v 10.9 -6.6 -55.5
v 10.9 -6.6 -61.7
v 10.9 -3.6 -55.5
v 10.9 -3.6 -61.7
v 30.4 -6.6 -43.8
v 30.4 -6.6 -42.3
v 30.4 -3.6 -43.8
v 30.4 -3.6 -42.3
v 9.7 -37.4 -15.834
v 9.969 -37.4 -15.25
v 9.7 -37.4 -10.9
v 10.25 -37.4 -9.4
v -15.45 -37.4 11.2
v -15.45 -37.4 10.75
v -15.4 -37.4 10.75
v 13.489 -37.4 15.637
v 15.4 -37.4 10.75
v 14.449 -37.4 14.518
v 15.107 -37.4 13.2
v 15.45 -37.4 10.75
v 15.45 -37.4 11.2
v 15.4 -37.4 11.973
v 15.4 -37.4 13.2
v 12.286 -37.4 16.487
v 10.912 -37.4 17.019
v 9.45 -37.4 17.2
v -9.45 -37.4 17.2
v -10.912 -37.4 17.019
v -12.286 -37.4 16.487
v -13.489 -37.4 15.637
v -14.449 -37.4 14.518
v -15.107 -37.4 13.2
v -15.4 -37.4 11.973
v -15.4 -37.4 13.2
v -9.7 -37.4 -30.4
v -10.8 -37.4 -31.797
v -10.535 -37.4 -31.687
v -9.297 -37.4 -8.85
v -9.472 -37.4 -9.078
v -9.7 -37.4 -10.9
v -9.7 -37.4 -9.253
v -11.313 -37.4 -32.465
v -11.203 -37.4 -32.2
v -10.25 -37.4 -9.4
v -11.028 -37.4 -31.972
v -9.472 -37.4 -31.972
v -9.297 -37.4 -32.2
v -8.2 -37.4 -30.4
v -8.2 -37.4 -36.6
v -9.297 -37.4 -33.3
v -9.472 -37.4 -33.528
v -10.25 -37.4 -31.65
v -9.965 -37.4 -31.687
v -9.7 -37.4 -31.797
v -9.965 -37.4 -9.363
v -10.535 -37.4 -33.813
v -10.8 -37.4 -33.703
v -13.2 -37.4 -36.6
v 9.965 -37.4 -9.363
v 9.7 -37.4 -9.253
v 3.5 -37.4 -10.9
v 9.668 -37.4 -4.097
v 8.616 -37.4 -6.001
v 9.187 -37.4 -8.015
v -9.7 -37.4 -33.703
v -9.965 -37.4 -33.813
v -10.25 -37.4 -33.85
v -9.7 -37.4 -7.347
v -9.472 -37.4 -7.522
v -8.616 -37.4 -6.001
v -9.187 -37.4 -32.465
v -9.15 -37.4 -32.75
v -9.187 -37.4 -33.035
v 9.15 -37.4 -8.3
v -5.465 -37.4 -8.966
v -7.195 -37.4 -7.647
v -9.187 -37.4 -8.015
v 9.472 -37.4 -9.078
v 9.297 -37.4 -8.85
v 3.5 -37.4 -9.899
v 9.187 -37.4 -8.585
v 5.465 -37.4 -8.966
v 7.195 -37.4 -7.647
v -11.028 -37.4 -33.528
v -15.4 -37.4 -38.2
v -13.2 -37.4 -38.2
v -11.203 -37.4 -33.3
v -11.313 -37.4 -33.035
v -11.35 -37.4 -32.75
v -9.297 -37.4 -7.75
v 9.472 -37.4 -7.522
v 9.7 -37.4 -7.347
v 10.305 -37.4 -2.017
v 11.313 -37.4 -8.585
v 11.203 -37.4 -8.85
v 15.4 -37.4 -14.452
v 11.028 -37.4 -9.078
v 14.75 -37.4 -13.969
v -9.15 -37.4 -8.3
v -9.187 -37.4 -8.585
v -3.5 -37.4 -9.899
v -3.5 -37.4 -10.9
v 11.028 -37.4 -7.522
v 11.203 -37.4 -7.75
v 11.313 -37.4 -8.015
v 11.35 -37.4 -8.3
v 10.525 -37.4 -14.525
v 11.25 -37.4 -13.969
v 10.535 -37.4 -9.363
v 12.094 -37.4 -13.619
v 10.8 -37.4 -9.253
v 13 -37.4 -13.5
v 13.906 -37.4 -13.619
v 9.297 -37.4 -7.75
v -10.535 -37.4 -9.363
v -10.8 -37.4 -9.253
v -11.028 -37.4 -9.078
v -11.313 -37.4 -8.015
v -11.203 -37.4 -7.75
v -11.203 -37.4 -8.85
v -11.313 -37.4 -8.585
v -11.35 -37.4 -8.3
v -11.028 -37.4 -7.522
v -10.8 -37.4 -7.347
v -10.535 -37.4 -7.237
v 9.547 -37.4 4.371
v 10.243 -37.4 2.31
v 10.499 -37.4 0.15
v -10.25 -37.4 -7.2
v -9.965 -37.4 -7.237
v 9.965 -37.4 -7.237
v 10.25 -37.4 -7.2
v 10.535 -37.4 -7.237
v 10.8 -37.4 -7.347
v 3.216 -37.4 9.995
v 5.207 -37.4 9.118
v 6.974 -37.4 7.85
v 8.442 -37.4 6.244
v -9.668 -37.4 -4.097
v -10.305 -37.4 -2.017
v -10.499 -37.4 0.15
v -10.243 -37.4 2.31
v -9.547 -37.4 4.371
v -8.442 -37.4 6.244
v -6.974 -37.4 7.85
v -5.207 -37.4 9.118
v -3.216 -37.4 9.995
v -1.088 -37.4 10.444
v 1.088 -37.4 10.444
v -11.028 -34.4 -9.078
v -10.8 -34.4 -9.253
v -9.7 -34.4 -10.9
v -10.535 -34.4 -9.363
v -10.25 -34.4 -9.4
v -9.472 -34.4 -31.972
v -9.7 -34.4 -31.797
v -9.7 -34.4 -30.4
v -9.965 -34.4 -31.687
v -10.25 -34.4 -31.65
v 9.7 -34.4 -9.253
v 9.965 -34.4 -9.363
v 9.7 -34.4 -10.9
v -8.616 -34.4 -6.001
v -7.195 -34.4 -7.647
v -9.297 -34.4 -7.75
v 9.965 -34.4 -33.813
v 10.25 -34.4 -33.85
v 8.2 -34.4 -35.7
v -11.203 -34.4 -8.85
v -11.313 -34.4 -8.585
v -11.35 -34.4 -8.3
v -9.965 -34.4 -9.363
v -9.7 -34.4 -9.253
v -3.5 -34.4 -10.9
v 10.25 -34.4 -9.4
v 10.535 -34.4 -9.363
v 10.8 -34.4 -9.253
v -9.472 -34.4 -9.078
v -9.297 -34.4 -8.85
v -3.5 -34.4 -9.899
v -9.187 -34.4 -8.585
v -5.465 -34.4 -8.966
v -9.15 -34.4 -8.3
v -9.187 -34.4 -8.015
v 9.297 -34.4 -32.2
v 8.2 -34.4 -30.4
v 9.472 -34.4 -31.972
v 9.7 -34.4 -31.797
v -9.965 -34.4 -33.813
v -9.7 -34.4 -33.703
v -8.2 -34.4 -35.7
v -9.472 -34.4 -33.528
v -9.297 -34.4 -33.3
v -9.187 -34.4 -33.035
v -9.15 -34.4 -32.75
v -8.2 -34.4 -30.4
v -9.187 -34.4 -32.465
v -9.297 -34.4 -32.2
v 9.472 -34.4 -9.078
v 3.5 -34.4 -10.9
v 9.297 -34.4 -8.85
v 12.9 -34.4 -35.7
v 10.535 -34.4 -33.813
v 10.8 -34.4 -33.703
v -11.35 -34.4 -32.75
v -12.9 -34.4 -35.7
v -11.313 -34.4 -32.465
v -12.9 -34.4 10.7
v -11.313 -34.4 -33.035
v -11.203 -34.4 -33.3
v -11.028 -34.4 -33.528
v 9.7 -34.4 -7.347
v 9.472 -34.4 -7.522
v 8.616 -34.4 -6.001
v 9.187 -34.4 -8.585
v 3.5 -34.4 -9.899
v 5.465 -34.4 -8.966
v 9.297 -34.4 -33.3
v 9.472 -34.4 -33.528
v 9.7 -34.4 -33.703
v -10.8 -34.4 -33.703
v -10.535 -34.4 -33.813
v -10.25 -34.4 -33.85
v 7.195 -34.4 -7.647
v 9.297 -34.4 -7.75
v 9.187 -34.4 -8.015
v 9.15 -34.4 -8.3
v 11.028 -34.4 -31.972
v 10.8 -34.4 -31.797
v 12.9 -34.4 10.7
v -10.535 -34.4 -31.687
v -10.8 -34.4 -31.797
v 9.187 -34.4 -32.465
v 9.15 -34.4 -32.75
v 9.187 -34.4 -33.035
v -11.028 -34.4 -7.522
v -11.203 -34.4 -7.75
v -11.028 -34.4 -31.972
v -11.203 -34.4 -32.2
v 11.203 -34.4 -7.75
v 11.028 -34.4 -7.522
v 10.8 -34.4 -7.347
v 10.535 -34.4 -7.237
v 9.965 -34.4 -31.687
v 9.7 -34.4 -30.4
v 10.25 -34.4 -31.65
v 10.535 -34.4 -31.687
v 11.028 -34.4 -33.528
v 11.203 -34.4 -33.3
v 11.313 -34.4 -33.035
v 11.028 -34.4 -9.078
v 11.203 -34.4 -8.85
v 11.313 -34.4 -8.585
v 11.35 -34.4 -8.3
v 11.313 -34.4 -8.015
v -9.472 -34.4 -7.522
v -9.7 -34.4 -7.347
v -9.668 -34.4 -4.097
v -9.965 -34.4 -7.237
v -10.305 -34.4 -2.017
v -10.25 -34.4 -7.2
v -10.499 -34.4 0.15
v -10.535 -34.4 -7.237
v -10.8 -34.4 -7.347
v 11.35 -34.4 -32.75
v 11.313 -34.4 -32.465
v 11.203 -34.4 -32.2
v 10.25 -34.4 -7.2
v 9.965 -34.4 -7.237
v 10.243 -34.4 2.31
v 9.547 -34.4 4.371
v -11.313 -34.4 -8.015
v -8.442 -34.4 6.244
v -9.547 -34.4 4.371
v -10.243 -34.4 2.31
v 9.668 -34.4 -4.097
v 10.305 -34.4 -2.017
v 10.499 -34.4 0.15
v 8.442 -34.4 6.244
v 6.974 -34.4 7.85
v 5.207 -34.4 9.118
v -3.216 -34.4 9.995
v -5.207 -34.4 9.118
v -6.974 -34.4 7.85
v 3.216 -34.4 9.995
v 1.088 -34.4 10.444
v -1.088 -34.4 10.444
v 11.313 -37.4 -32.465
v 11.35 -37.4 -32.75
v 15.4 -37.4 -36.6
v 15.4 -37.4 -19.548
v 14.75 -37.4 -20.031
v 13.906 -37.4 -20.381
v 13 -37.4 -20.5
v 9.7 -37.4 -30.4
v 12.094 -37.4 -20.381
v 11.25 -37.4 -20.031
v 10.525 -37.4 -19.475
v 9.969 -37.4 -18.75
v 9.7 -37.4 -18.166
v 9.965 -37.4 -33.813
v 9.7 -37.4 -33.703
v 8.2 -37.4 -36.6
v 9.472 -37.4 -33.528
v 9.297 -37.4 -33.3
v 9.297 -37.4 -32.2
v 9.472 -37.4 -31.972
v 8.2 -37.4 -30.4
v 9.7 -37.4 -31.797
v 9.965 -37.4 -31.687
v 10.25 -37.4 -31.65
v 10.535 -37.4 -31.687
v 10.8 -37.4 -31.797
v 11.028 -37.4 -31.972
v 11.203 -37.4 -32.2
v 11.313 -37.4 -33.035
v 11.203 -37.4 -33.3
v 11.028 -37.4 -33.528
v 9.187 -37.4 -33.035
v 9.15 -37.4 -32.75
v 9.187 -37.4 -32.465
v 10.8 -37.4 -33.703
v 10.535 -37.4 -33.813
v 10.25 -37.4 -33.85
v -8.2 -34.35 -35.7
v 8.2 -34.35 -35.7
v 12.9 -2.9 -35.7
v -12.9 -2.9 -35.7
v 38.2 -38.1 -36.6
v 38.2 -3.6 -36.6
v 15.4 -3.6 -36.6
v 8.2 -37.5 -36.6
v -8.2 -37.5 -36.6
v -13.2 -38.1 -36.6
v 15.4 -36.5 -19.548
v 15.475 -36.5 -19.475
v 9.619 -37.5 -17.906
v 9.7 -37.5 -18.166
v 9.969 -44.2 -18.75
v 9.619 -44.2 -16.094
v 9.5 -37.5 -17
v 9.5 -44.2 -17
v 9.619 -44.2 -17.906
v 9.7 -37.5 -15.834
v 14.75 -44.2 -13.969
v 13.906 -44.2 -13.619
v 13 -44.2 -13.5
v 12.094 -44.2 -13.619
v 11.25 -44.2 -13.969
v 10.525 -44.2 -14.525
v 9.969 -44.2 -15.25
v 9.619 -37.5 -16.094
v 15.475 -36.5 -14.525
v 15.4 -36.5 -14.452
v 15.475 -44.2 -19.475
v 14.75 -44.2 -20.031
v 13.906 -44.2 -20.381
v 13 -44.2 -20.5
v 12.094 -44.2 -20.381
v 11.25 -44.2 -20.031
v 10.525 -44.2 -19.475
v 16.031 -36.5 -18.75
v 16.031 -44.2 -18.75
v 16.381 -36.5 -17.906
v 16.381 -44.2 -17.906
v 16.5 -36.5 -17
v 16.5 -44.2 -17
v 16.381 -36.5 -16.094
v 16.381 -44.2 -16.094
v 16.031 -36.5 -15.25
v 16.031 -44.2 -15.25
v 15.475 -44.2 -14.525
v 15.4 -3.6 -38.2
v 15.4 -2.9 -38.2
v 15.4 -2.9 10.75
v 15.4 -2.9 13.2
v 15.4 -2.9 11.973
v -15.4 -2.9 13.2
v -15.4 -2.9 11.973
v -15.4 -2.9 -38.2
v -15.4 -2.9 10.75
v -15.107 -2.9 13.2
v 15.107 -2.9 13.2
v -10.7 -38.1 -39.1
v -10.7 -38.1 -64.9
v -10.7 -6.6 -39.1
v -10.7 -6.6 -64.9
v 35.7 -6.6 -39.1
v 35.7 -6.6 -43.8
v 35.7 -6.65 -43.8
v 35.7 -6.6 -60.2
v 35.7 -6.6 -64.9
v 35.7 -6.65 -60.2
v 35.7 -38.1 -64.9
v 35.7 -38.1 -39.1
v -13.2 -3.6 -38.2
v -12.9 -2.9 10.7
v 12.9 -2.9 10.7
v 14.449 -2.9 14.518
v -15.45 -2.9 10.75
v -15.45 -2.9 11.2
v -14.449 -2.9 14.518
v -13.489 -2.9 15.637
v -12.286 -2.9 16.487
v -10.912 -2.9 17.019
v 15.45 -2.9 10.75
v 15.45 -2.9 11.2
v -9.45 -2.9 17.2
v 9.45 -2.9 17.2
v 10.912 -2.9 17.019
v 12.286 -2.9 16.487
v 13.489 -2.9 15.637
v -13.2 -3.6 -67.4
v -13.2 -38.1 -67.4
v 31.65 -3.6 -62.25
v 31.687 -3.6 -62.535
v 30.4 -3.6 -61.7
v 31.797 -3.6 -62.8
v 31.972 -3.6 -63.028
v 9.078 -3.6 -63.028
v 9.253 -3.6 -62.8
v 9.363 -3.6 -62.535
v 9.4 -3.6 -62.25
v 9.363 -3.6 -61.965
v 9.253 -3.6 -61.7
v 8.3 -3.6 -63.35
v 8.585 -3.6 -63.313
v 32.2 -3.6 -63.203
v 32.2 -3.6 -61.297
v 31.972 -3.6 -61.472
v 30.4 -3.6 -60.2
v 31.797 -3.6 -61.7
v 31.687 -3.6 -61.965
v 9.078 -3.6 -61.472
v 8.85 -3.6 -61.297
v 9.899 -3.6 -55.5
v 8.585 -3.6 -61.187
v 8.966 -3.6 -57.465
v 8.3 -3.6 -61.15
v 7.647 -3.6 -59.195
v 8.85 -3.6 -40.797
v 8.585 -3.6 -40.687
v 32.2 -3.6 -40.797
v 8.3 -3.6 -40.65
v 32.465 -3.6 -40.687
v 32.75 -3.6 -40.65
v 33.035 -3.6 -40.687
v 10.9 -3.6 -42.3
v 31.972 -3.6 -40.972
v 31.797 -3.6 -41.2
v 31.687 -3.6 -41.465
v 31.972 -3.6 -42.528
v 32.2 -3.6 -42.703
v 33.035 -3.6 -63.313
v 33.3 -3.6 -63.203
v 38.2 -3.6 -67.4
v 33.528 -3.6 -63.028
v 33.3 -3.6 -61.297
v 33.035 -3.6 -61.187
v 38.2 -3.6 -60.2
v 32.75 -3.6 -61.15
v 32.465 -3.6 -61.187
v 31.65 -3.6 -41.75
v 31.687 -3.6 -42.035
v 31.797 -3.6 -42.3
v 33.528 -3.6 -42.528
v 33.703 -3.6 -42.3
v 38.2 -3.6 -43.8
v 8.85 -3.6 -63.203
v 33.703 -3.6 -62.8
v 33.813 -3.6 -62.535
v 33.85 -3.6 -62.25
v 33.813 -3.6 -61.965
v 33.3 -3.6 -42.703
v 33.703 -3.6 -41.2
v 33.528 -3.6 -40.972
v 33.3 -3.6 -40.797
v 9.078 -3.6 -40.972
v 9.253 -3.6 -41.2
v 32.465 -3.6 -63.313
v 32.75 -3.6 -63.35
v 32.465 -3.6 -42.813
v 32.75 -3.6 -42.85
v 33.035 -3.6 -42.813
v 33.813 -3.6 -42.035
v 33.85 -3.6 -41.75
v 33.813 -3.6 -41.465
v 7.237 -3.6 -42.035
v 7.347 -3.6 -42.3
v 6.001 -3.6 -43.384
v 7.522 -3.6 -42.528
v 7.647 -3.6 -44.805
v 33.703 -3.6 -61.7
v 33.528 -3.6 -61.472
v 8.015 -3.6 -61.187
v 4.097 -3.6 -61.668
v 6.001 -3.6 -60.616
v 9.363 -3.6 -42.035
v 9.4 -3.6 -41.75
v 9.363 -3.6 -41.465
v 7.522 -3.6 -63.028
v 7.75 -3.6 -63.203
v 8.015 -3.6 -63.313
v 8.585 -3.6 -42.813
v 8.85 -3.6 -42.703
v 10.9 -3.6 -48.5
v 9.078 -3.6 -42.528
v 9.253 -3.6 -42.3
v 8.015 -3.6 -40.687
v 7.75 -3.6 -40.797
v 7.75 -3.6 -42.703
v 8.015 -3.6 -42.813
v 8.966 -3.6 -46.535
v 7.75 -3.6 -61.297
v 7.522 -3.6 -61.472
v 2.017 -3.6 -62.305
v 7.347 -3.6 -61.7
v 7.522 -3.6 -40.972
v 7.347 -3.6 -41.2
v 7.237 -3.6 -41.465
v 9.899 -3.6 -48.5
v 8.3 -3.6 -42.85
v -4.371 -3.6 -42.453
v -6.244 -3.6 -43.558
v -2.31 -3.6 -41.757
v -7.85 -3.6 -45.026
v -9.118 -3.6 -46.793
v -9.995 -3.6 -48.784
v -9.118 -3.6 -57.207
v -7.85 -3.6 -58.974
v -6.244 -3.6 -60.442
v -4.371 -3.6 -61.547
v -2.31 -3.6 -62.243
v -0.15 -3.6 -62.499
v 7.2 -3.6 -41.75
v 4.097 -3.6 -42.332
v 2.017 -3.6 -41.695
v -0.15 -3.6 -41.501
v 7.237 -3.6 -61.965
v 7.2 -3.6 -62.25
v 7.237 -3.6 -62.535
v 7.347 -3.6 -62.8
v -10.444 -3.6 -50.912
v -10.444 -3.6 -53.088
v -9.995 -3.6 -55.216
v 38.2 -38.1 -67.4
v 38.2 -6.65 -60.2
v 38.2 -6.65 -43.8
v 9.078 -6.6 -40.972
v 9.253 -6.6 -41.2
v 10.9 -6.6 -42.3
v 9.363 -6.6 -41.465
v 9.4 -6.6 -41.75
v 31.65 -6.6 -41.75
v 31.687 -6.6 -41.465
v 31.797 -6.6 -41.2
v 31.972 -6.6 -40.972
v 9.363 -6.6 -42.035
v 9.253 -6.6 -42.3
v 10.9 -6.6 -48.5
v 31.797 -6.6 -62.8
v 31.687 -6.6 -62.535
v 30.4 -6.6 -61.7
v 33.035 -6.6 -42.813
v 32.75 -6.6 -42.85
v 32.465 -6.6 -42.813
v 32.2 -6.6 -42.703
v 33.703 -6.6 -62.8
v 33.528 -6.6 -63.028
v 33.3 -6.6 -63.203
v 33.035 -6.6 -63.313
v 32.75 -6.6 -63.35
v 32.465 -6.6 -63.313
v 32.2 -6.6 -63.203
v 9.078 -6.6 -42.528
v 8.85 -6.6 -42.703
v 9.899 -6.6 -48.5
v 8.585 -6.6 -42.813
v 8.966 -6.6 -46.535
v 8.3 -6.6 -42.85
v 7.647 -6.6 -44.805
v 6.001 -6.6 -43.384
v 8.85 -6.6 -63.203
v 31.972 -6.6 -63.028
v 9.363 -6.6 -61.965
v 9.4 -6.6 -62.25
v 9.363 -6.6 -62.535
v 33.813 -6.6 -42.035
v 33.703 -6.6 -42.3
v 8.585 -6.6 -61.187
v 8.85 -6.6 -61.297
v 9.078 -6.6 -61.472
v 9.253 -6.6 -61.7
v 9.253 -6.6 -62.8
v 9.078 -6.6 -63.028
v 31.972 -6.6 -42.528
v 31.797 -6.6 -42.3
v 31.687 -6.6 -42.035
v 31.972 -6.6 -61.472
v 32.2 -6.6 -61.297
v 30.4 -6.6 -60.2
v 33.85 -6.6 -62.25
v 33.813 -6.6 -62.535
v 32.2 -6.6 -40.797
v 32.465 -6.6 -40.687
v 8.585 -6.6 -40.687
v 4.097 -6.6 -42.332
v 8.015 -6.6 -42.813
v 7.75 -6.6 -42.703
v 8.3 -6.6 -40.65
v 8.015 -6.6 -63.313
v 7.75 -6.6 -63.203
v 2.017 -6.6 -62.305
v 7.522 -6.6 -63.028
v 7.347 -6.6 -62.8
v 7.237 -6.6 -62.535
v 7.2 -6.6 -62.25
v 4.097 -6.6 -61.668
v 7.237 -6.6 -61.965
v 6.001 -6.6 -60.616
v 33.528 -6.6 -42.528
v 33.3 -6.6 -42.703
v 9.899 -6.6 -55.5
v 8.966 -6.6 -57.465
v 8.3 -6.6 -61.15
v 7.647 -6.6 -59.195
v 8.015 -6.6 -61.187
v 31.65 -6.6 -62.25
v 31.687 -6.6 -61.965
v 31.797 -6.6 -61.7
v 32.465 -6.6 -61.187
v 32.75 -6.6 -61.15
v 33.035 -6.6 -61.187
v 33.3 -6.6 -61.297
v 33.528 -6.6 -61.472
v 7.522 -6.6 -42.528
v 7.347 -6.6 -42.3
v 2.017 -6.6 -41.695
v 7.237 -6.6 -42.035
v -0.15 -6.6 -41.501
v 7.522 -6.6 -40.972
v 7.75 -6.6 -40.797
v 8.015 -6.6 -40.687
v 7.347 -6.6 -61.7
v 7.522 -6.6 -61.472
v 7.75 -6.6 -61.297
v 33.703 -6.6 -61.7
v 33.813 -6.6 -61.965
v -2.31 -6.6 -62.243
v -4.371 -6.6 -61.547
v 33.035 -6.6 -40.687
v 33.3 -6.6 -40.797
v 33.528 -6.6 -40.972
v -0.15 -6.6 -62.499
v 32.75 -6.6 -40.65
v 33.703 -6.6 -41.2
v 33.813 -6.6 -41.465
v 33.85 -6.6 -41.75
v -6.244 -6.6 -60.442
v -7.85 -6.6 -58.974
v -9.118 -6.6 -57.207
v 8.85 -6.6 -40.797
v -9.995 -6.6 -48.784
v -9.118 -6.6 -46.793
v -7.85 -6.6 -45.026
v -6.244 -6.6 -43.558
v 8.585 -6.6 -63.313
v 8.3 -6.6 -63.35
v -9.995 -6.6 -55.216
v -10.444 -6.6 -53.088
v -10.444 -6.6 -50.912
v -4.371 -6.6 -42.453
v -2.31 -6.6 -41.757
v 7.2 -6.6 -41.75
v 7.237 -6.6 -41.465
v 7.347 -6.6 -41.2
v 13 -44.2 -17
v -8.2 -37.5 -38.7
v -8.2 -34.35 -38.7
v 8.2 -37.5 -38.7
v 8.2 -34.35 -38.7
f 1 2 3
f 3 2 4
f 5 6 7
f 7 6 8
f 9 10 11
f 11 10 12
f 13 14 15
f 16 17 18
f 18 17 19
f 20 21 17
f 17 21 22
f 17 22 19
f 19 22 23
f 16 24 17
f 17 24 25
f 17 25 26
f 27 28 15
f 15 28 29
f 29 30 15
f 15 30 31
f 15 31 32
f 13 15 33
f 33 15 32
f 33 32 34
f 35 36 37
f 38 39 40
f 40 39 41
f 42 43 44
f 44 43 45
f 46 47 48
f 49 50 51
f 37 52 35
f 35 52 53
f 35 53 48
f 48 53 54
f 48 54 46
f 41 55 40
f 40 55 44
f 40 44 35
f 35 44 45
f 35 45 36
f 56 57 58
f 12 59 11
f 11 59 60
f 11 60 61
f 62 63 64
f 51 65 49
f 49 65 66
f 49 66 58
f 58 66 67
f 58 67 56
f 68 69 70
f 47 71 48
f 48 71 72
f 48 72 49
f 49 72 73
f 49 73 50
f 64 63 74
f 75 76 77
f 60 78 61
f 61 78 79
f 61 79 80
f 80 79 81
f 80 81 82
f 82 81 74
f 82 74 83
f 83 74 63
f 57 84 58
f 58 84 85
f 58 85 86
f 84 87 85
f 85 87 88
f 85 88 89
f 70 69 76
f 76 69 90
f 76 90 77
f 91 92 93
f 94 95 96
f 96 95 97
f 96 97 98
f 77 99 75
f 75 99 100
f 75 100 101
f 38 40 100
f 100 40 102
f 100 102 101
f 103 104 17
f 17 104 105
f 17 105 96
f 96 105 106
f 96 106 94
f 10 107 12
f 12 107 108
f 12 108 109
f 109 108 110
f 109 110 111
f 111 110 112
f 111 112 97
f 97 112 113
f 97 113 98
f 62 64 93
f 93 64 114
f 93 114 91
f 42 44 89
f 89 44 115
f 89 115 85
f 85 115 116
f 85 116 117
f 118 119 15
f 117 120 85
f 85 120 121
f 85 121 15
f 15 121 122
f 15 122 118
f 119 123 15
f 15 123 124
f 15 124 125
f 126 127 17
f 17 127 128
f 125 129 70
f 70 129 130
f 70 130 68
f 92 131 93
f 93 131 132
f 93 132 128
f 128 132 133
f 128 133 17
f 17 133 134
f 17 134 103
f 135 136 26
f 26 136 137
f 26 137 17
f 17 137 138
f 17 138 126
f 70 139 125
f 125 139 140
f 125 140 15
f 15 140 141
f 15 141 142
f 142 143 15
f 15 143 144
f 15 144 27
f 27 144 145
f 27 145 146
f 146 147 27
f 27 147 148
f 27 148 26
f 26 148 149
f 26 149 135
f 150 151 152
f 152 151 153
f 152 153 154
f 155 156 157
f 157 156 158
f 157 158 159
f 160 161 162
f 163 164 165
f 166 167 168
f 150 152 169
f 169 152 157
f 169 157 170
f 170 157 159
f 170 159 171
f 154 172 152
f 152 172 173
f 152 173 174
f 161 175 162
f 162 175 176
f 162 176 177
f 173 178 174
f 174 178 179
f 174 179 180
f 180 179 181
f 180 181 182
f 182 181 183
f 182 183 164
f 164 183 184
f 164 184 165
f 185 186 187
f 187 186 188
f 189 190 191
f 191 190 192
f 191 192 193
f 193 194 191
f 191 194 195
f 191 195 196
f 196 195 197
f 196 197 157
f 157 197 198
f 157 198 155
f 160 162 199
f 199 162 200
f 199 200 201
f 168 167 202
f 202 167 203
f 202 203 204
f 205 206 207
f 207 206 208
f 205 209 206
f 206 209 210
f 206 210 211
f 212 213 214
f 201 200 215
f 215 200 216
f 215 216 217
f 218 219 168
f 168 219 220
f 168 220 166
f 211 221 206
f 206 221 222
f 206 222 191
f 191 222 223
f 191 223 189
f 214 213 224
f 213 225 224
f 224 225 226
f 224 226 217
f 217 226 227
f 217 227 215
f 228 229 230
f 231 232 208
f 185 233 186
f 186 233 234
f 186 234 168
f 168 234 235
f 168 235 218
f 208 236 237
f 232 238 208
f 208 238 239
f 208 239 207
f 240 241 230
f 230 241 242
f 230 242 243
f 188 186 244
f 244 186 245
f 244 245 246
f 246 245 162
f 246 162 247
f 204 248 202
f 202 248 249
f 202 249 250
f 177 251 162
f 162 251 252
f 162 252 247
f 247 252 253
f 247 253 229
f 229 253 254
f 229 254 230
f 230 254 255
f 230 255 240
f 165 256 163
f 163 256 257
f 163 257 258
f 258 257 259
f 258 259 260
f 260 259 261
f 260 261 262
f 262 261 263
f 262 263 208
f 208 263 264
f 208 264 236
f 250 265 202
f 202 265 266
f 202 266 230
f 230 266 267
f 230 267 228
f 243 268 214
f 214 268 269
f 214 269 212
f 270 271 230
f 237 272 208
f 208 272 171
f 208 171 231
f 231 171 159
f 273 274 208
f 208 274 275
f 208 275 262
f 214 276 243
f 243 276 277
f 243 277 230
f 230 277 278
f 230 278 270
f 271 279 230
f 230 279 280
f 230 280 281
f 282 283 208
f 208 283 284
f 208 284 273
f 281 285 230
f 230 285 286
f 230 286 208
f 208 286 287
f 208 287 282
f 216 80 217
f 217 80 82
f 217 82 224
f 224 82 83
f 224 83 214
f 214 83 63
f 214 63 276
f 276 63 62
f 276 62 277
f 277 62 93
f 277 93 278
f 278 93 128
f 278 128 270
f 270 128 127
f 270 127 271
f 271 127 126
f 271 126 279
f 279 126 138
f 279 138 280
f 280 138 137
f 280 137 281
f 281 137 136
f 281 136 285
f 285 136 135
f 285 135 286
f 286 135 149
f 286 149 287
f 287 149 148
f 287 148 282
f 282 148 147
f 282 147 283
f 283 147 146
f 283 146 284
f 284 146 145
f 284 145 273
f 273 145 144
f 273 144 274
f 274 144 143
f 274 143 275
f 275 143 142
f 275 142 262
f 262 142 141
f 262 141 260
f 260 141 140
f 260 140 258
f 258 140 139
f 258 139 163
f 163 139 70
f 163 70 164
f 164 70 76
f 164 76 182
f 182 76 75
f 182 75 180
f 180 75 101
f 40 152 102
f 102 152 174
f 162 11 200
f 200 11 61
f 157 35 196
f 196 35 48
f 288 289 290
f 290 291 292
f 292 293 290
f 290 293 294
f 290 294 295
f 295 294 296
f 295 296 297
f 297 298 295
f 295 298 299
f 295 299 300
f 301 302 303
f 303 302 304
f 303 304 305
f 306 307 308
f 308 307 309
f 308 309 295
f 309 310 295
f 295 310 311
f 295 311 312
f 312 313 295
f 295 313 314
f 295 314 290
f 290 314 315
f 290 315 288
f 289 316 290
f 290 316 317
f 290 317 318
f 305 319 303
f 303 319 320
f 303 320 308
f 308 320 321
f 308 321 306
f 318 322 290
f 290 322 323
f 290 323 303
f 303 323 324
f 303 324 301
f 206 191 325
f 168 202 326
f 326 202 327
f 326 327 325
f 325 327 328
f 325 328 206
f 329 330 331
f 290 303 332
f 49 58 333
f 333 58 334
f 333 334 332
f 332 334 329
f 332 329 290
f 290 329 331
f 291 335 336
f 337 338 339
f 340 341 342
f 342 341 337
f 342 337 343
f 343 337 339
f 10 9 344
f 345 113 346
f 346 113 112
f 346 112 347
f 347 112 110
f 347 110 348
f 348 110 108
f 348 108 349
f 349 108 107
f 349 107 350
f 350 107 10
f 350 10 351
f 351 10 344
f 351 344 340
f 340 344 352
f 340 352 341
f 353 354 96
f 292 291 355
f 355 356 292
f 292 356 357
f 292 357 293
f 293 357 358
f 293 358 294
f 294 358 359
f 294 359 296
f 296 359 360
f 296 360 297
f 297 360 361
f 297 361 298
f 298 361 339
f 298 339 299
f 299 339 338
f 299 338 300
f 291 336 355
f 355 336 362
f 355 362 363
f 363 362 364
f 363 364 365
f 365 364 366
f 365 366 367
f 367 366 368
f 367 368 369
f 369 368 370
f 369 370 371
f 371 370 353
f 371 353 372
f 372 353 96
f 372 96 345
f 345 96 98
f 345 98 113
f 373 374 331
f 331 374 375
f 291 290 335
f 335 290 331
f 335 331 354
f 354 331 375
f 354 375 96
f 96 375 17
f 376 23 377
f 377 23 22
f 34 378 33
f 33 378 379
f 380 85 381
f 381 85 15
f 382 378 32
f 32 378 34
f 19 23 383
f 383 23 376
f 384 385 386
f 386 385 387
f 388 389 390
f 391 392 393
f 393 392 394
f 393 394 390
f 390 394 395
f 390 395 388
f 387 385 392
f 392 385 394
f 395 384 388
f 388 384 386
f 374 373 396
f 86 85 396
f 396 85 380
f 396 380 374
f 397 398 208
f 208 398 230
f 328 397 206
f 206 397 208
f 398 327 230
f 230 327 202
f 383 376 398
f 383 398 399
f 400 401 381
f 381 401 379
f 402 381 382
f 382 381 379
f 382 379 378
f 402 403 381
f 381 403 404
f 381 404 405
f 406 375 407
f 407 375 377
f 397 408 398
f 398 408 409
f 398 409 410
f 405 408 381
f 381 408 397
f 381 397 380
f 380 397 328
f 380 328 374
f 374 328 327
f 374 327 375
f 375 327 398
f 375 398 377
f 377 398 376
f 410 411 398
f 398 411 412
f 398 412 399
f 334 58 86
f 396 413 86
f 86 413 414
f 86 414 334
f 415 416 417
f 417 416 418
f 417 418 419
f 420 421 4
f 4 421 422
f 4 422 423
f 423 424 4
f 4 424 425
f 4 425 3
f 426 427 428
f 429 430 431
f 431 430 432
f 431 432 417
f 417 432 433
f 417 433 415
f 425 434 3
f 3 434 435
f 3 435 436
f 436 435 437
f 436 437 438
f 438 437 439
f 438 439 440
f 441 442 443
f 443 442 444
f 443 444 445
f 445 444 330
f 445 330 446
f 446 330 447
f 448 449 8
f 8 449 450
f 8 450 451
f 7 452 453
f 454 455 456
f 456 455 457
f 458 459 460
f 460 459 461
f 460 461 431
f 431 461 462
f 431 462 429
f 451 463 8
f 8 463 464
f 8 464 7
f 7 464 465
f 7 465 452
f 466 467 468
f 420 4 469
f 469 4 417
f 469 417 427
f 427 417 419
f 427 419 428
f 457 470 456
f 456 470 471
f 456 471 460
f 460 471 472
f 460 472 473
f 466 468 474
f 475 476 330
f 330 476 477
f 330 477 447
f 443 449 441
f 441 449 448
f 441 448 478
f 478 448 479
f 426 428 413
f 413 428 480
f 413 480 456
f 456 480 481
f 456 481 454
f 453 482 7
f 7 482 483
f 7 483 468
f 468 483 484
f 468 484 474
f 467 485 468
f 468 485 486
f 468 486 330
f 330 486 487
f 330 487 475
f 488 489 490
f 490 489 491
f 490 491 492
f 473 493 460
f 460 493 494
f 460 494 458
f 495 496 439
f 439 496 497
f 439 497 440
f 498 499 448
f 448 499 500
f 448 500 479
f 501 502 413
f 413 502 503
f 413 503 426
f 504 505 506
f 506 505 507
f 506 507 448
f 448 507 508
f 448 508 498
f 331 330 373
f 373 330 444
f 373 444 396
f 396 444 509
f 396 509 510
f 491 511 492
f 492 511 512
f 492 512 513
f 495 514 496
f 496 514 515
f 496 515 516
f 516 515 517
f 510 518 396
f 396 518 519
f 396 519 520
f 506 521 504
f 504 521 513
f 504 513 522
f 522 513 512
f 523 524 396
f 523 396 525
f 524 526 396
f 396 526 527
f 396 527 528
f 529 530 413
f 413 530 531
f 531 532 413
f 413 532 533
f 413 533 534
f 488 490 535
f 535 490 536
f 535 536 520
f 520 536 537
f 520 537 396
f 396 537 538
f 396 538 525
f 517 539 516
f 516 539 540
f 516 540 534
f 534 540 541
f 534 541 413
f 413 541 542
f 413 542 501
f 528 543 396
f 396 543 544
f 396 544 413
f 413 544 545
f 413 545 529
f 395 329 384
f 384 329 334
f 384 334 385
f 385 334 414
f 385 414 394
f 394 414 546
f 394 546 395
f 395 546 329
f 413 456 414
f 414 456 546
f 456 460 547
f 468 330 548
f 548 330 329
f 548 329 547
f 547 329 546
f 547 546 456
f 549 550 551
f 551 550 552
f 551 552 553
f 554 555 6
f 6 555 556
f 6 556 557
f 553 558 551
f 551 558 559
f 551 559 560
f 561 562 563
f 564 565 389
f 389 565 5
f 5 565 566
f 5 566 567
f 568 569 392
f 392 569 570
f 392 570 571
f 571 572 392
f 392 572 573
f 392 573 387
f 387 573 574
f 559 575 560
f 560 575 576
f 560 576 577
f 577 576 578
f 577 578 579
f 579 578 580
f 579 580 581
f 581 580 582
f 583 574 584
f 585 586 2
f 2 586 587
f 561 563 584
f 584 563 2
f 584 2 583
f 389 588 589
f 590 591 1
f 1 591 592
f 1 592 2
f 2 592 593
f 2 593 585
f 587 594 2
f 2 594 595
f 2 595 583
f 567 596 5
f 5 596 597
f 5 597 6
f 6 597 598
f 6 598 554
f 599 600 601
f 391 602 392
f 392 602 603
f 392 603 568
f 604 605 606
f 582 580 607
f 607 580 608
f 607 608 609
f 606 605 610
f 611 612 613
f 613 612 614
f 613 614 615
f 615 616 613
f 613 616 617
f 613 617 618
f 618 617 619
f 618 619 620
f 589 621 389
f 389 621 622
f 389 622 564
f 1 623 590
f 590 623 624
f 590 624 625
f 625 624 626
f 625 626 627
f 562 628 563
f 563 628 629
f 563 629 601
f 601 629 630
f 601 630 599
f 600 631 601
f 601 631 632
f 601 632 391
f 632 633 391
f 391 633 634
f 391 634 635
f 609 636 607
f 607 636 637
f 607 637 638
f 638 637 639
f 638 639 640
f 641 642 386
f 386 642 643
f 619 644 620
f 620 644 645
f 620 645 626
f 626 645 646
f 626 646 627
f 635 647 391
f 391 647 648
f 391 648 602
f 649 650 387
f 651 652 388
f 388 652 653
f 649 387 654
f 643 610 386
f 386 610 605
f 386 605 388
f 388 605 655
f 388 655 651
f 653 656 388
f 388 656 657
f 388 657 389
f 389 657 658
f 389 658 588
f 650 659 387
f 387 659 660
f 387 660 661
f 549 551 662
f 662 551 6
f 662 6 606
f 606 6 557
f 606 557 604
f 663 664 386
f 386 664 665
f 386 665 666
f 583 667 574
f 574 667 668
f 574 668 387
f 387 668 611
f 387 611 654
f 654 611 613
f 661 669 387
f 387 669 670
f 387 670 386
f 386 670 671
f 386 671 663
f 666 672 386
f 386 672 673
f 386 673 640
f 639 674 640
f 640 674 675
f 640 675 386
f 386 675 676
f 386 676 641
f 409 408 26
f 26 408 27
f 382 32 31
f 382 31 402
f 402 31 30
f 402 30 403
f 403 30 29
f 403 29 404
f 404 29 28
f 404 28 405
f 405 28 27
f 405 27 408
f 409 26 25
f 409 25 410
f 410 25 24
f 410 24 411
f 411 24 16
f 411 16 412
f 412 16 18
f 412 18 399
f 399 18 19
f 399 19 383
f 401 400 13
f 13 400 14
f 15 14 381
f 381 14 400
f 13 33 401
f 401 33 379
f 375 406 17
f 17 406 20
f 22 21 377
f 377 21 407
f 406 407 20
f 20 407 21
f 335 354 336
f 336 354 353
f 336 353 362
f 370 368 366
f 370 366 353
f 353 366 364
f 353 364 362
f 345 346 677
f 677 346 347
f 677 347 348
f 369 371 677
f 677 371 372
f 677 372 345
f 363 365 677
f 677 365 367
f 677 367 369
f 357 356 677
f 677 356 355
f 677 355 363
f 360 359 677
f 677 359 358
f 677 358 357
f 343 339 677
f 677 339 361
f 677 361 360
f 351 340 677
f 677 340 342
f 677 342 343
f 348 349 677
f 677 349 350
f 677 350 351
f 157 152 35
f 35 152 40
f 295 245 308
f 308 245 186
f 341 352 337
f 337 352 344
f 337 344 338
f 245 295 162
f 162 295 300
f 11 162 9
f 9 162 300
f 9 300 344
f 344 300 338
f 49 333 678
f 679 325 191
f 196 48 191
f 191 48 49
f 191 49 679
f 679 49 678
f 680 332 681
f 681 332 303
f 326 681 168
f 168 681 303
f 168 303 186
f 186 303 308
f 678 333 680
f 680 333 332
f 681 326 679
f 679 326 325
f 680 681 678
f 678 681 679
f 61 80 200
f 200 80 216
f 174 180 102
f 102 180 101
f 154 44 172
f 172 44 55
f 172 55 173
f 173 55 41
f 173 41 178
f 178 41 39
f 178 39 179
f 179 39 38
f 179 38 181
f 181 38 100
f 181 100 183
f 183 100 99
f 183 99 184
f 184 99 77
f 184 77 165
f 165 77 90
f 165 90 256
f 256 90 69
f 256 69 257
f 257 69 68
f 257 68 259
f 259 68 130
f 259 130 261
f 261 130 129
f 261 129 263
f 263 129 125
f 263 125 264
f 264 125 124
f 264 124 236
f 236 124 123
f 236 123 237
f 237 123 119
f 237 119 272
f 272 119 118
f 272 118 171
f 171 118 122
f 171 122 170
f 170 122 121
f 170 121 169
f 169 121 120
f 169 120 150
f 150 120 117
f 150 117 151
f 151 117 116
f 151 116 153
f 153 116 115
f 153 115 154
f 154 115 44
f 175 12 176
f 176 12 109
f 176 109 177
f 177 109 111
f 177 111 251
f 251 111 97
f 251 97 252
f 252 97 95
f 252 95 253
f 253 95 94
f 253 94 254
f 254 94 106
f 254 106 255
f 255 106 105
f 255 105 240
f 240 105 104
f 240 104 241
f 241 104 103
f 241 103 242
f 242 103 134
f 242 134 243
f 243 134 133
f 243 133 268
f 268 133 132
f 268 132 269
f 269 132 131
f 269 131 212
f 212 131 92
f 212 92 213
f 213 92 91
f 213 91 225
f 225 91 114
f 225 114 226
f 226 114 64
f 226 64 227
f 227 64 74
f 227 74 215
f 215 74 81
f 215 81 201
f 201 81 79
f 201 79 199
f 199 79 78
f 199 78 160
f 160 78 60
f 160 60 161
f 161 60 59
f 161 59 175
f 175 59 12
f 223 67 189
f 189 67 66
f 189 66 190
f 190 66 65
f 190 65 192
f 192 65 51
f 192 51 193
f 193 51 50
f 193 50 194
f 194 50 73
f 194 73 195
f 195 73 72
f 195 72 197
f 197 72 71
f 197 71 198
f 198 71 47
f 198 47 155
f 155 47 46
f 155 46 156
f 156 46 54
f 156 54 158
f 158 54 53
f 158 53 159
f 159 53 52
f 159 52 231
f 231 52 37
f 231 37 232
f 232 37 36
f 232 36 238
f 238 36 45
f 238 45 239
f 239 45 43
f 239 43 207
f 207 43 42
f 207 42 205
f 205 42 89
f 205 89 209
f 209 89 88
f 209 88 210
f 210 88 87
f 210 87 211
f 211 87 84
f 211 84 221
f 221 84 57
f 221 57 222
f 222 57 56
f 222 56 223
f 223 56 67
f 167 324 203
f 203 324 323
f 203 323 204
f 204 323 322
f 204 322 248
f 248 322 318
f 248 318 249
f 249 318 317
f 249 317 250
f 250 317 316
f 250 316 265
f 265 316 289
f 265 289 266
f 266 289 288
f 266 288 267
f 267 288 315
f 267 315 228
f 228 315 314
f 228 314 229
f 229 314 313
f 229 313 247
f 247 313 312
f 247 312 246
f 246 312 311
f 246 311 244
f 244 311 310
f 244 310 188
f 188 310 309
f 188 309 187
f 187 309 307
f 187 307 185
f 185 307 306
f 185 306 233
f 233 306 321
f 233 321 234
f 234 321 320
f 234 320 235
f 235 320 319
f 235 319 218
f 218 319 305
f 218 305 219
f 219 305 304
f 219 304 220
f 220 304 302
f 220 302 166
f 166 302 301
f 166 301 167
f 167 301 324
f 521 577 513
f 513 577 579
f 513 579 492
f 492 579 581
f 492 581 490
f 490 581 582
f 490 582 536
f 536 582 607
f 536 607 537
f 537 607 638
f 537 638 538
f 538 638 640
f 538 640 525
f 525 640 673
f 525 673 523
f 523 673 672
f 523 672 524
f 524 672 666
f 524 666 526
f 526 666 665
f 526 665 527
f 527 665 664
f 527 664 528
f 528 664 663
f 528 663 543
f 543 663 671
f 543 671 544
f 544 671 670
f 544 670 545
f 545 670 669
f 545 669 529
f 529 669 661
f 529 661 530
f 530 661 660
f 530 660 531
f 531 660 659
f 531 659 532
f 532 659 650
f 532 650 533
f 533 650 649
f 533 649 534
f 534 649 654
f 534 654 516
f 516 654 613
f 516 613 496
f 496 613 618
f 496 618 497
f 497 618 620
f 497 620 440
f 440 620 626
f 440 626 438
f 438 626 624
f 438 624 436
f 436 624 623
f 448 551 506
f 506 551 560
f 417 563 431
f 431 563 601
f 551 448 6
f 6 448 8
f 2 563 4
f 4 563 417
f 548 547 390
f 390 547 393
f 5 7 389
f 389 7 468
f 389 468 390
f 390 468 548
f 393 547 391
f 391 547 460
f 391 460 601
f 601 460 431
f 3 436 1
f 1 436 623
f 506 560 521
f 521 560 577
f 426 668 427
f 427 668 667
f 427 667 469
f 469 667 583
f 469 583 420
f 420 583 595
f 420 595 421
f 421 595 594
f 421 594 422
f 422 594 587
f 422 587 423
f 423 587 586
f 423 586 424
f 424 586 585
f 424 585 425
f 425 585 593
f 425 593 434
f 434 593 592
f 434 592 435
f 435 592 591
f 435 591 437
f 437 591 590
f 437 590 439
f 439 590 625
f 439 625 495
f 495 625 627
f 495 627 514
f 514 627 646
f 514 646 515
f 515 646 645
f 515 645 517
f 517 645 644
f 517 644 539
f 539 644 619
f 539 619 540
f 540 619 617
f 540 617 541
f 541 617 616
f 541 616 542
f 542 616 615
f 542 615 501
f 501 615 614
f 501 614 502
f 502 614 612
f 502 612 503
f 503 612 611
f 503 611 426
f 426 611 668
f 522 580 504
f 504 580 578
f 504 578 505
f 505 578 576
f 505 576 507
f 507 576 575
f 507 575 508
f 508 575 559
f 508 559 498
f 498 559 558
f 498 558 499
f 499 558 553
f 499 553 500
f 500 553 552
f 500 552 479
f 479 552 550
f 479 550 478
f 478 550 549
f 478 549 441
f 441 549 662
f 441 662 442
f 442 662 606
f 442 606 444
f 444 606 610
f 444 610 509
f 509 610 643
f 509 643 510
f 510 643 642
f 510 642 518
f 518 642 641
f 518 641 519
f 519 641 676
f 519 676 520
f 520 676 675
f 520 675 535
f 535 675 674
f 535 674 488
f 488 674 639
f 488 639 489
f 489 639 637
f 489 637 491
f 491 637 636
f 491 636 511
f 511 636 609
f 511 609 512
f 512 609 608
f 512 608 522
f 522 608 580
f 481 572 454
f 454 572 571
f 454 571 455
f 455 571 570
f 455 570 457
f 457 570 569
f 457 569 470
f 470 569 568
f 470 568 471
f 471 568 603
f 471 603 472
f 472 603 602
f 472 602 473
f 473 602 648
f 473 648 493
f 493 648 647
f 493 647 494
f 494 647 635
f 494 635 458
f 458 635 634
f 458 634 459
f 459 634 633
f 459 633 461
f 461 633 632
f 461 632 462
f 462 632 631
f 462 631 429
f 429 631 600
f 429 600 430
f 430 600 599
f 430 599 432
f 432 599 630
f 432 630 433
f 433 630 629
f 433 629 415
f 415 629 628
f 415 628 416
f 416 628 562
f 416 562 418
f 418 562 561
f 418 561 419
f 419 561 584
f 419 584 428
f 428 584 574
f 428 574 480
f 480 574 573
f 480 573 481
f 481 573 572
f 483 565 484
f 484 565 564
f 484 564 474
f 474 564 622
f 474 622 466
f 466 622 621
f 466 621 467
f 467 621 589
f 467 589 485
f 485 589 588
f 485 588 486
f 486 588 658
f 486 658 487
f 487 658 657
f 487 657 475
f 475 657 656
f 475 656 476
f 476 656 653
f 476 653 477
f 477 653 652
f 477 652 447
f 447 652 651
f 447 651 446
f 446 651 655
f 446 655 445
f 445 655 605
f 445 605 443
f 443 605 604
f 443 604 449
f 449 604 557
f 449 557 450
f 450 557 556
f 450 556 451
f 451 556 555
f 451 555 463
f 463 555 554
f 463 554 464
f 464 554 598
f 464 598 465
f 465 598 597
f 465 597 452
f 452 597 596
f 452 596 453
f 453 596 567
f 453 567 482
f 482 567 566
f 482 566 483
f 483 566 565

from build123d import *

# Parameters (mm, degrees)
S_BOX1_W        = 30.8
S_BOX1_H        = 34.5
BOSS_1_DEPTH    = 2.5
S_BOX2_W        = 30.8
S_BOX2_H        = 34.5
BOSS_2_DEPTH    = 2.5
S_BOX3_W        = 2.5
S_BOX3_H        = 34.5
BOSS_3_DEPTH    = 51.4
S_BOX4_W        = 2.5
S_BOX4_H        = 34.5
BOSS_4_DEPTH    = 51.4
S_BOX5_W        = 30.8
S_BOX5_H        = 3
BOSS_5_DEPTH    = 51.4
S_BOX6_W        = 2.5
S_BOX6_H        = 34.5
BOSS_6_DEPTH    = 30.8
S_BOX7_W        = 2.5
S_BOX7_H        = 34.5
BOSS_7_DEPTH    = 30.8
S_BOX8_W        = 51.4
S_BOX8_H        = 34.5
BOSS_8_DEPTH    = 2.5
S_BOX9_W        = 51.4
S_BOX9_H        = 34.5
BOSS_9_DEPTH    = 2.5
S_BOX10_W       = 51.4
S_BOX10_H       = 3
BOSS_10_DEPTH   = 30.8
BOSS_11_DEPTH   = 34.5
S_CYL12_R       = 3.5
BOSS_12_DEPTH   = 7.7
S_HOLE13_R      = 10.5
HOLE_13_DEPTH   = 3.2
S_CUT14_W       = 19.4
S_CUT14_H       = 3.15
POCKET_14_DEPTH = 19.5
S_CUT15_W       = 16.4
S_CUT15_H       = 3.15
POCKET_15_DEPTH = 8.3
S_CUT16_W       = 7
S_CUT16_H       = 3.15
POCKET_16_DEPTH = 11
S_HOLE17_R      = 1.1
HOLE_17_DEPTH   = 3.2
S_HOLE18_R      = 1.1
HOLE_18_DEPTH   = 3.2
S_HOLE19_R      = 1.1
HOLE_19_DEPTH   = 3.2
S_HOLE20_R      = 1.1
HOLE_20_DEPTH   = 3.2
S_HOLE21_R      = 10.5
HOLE_21_DEPTH   = 3.2
S_CUT22_W       = 19.5
S_CUT22_H       = 3.15
POCKET_22_DEPTH = 19.4
S_CUT23_W       = 8.3
S_CUT23_H       = 3.15
POCKET_23_DEPTH = 16.4
S_CUT24_W       = 11
S_CUT24_H       = 3.15
POCKET_24_DEPTH = 7
S_HOLE25_R      = 1.1
HOLE_25_DEPTH   = 3.2
S_HOLE26_R      = 1.1
HOLE_26_DEPTH   = 3.2
S_HOLE27_R      = 1.1
HOLE_27_DEPTH   = 3.2
S_HOLE28_R      = 1.1
HOLE_28_DEPTH   = 3.2


with BuildPart() as part:
    # S_box1 → Boss_1 (new body)
    with BuildSketch(Plane.XY.offset(-38.2)):
        with Locations((0, -20.15)):
            Rectangle(S_BOX1_W, S_BOX1_H)
    extrude(amount=BOSS_1_DEPTH)



with BuildPart() as body_2:
    # S_box2 → Boss_2 (new body)
    with BuildSketch(Plane.XY.offset(10.7)):
        with Locations((0, -20.15)):
            Rectangle(S_BOX2_W, S_BOX2_H)
    extrude(amount=BOSS_2_DEPTH)


with BuildPart() as part_1:
    add(part.part)

    add(body_2.part)  # Boss_3 merges body 2
    # S_box3 → Boss_3 (add)
    with BuildSketch(Plane.XY.offset(-38.2)):
        with Locations((-14.15, -20.15)):
            Rectangle(S_BOX3_W, S_BOX3_H)
    extrude(amount=BOSS_3_DEPTH)

    # S_box4 → Boss_4 (add)
    with BuildSketch(Plane.XY.offset(-38.2)):
        with Locations((14.15, -20.15)):
            Rectangle(S_BOX4_W, S_BOX4_H)
    extrude(amount=BOSS_4_DEPTH)

    # S_box5 → Boss_5 (add)
    with BuildSketch(Plane.XY.offset(-38.2)):
        with Locations((0, -35.9)):
            Rectangle(S_BOX5_W, S_BOX5_H)
    extrude(amount=BOSS_5_DEPTH)

    # S_box6 → Boss_6 (add)
    with BuildSketch(Plane.XY.offset(-67.4)):
        with Locations((-11.95, -20.85)):
            Rectangle(S_BOX6_W, S_BOX6_H)
    extrude(amount=BOSS_6_DEPTH)



with BuildPart() as body_2_2:
    # S_box7 → Boss_7 (new body)
    with BuildSketch(Plane.XY.offset(-67.4)):
        with Locations((36.95, -20.85)):
            Rectangle(S_BOX7_W, S_BOX7_H)
    extrude(amount=BOSS_7_DEPTH)


with BuildPart() as part_2:
    add(part_1.part)

    add(body_2_2.part)  # Boss_8 merges body 2 2
    # S_box8 → Boss_8 (add)
    with BuildSketch(Plane.XY.offset(-67.4)):
        with Locations((12.5, -20.85)):
            Rectangle(S_BOX8_W, S_BOX8_H)
    extrude(amount=BOSS_8_DEPTH)

    # S_box9 → Boss_9 (add)
    with BuildSketch(Plane.XY.offset(-39.1)):
        with Locations((12.5, -20.85)):
            Rectangle(S_BOX9_W, S_BOX9_H)
    extrude(amount=BOSS_9_DEPTH)

    # S_box10 → Boss_10 (add)
    with BuildSketch(Plane.XY.offset(-67.4)):
        with Locations((12.5, -5.1)):
            Rectangle(S_BOX10_W, S_BOX10_H)
    extrude(amount=BOSS_10_DEPTH)

    # S_prism11 → Boss_11 (add)
    with BuildSketch(Plane(origin=(0, -37.4, 0), x_dir=(1, 0, 0), z_dir=(0, 1, 0))):
        with BuildLine():
            Line((-15.45, -10.75), (15.45, -10.75))
            Line((15.45, -10.75), (15.45, -11.2))
            ThreePointArc((15.45, -11.2), (13.6926, -15.4426), (9.45, -17.2))
            Line((9.45, -17.2), (-9.45, -17.2))
            ThreePointArc((-9.45, -17.2), (-13.6926, -15.4426), (-15.45, -11.2))
            Line((-15.45, -11.2), (-15.45, -10.75))
        make_face()
    extrude(amount=BOSS_11_DEPTH)

    # S_cyl12 → Boss_12 (add)
    with BuildSketch(Plane(origin=(0, -44.2, 0), x_dir=(1, 0, 0), z_dir=(0, 1, 0))):
        with Locations(Location((13, 17, 0), (0, 0, 46.708192407))):
            Circle(S_CYL12_R)
    extrude(amount=BOSS_12_DEPTH)

    # S_hole13 → Hole_13 (cut)
    with BuildSketch(Plane(origin=(0, -37.5, 0), x_dir=(1, 0, 0), z_dir=(0, 1, 0))):
        with Locations(Location((0, 0, 0), (0, 0, 90))):
            Circle(S_HOLE13_R)
    extrude(amount=HOLE_13_DEPTH, mode=Mode.SUBTRACT)

    # S_cut14 → Pocket_14 (cut)
    with BuildSketch(Plane.XY.offset(-30.4)):
        with Locations((0, -35.925)):
            Rectangle(S_CUT14_W, S_CUT14_H)
    extrude(amount=POCKET_14_DEPTH, mode=Mode.SUBTRACT)

    # S_cut15 → Pocket_15 (cut)
    with BuildSketch(Plane.XY.offset(-38.7)):
        with Locations((0, -35.925)):
            Rectangle(S_CUT15_W, S_CUT15_H)
    extrude(amount=POCKET_15_DEPTH, mode=Mode.SUBTRACT)

    # S_cut16 → Pocket_16 (cut)
    with BuildSketch(Plane.XY.offset(-11)):
        with Locations((0, -35.925)):
            Rectangle(S_CUT16_W, S_CUT16_H)
    extrude(amount=POCKET_16_DEPTH, mode=Mode.SUBTRACT)

    # S_hole17 → Hole_17 (cut)
    with BuildSketch(Plane(origin=(0, -37.5, 0), x_dir=(1, 0, 0), z_dir=(0, 1, 0))):
        with Locations(Location((-10.25, 8.3, 0), (0, 0, 90))):
            Circle(S_HOLE17_R)
    extrude(amount=HOLE_17_DEPTH, mode=Mode.SUBTRACT)

    # S_hole18 → Hole_18 (cut)
    with BuildSketch(Plane(origin=(0, -37.5, 0), x_dir=(1, 0, 0), z_dir=(0, 1, 0))):
        with Locations(Location((10.25, 8.3, 0), (0, 0, 90))):
            Circle(S_HOLE18_R)
    extrude(amount=HOLE_18_DEPTH, mode=Mode.SUBTRACT)

    # S_hole19 → Hole_19 (cut)
    with BuildSketch(Plane(origin=(0, -37.5, 0), x_dir=(1, 0, 0), z_dir=(0, 1, 0))):
        with Locations(Location((-10.25, 32.75, 0), (0, 0, 90))):
            Circle(S_HOLE19_R)
    extrude(amount=HOLE_19_DEPTH, mode=Mode.SUBTRACT)

    # S_hole20 → Hole_20 (cut)
    with BuildSketch(Plane(origin=(0, -37.5, 0), x_dir=(1, 0, 0), z_dir=(0, 1, 0))):
        with Locations(Location((10.25, 32.75, 0), (0, 0, 90))):
            Circle(S_HOLE20_R)
    extrude(amount=HOLE_20_DEPTH, mode=Mode.SUBTRACT)

    # S_hole21 → Hole_21 (cut)
    with BuildSketch(Plane(origin=(0, -6.7, 0), x_dir=(1, 0, 0), z_dir=(0, 1, 0))):
        with Locations(Location((0, 52, 0), (0, 0, 90))):
            Circle(S_HOLE21_R)
    extrude(amount=HOLE_21_DEPTH, mode=Mode.SUBTRACT)

    # S_cut22 → Pocket_22 (cut)
    with BuildSketch(Plane.XY.offset(-61.7)):
        with Locations((20.65, -5.075)):
            Rectangle(S_CUT22_W, S_CUT22_H)
    extrude(amount=POCKET_22_DEPTH, mode=Mode.SUBTRACT)

    # S_cut23 → Pocket_23 (cut)
    with BuildSketch(Plane.XY.offset(-60.2)):
        with Locations((34.55, -5.075)):
            Rectangle(S_CUT23_W, S_CUT23_H)
    extrude(amount=POCKET_23_DEPTH, mode=Mode.SUBTRACT)

    # S_cut24 → Pocket_24 (cut)
    with BuildSketch(Plane.XY.offset(-55.5)):
        with Locations((5.5, -5.075)):
            Rectangle(S_CUT24_W, S_CUT24_H)
    extrude(amount=POCKET_24_DEPTH, mode=Mode.SUBTRACT)

    # S_hole25 → Hole_25 (cut)
    with BuildSketch(Plane(origin=(0, -6.7, 0), x_dir=(1, 0, 0), z_dir=(0, 1, 0))):
        with Locations(Location((8.3, 62.25, 0), (0, 0, 90))):
            Circle(S_HOLE25_R)
    extrude(amount=HOLE_25_DEPTH, mode=Mode.SUBTRACT)

    # S_hole26 → Hole_26 (cut)
    with BuildSketch(Plane(origin=(0, -6.7, 0), x_dir=(1, 0, 0), z_dir=(0, 1, 0))):
        with Locations(Location((8.3, 41.75, 0), (0, 0, 90))):
            Circle(S_HOLE26_R)
    extrude(amount=HOLE_26_DEPTH, mode=Mode.SUBTRACT)

    # S_hole27 → Hole_27 (cut)
    with BuildSketch(Plane(origin=(0, -6.7, 0), x_dir=(1, 0, 0), z_dir=(0, 1, 0))):
        with Locations(Location((32.75, 62.25, 0), (0, 0, 90))):
            Circle(S_HOLE27_R)
    extrude(amount=HOLE_27_DEPTH, mode=Mode.SUBTRACT)

    # S_hole28 → Hole_28 (cut)
    with BuildSketch(Plane(origin=(0, -6.7, 0), x_dir=(1, 0, 0), z_dir=(0, 1, 0))):
        with Locations(Location((32.75, 41.75, 0), (0, 0, 90))):
            Circle(S_HOLE28_R)
    extrude(amount=HOLE_28_DEPTH, mode=Mode.SUBTRACT)


solid = part_2.part
